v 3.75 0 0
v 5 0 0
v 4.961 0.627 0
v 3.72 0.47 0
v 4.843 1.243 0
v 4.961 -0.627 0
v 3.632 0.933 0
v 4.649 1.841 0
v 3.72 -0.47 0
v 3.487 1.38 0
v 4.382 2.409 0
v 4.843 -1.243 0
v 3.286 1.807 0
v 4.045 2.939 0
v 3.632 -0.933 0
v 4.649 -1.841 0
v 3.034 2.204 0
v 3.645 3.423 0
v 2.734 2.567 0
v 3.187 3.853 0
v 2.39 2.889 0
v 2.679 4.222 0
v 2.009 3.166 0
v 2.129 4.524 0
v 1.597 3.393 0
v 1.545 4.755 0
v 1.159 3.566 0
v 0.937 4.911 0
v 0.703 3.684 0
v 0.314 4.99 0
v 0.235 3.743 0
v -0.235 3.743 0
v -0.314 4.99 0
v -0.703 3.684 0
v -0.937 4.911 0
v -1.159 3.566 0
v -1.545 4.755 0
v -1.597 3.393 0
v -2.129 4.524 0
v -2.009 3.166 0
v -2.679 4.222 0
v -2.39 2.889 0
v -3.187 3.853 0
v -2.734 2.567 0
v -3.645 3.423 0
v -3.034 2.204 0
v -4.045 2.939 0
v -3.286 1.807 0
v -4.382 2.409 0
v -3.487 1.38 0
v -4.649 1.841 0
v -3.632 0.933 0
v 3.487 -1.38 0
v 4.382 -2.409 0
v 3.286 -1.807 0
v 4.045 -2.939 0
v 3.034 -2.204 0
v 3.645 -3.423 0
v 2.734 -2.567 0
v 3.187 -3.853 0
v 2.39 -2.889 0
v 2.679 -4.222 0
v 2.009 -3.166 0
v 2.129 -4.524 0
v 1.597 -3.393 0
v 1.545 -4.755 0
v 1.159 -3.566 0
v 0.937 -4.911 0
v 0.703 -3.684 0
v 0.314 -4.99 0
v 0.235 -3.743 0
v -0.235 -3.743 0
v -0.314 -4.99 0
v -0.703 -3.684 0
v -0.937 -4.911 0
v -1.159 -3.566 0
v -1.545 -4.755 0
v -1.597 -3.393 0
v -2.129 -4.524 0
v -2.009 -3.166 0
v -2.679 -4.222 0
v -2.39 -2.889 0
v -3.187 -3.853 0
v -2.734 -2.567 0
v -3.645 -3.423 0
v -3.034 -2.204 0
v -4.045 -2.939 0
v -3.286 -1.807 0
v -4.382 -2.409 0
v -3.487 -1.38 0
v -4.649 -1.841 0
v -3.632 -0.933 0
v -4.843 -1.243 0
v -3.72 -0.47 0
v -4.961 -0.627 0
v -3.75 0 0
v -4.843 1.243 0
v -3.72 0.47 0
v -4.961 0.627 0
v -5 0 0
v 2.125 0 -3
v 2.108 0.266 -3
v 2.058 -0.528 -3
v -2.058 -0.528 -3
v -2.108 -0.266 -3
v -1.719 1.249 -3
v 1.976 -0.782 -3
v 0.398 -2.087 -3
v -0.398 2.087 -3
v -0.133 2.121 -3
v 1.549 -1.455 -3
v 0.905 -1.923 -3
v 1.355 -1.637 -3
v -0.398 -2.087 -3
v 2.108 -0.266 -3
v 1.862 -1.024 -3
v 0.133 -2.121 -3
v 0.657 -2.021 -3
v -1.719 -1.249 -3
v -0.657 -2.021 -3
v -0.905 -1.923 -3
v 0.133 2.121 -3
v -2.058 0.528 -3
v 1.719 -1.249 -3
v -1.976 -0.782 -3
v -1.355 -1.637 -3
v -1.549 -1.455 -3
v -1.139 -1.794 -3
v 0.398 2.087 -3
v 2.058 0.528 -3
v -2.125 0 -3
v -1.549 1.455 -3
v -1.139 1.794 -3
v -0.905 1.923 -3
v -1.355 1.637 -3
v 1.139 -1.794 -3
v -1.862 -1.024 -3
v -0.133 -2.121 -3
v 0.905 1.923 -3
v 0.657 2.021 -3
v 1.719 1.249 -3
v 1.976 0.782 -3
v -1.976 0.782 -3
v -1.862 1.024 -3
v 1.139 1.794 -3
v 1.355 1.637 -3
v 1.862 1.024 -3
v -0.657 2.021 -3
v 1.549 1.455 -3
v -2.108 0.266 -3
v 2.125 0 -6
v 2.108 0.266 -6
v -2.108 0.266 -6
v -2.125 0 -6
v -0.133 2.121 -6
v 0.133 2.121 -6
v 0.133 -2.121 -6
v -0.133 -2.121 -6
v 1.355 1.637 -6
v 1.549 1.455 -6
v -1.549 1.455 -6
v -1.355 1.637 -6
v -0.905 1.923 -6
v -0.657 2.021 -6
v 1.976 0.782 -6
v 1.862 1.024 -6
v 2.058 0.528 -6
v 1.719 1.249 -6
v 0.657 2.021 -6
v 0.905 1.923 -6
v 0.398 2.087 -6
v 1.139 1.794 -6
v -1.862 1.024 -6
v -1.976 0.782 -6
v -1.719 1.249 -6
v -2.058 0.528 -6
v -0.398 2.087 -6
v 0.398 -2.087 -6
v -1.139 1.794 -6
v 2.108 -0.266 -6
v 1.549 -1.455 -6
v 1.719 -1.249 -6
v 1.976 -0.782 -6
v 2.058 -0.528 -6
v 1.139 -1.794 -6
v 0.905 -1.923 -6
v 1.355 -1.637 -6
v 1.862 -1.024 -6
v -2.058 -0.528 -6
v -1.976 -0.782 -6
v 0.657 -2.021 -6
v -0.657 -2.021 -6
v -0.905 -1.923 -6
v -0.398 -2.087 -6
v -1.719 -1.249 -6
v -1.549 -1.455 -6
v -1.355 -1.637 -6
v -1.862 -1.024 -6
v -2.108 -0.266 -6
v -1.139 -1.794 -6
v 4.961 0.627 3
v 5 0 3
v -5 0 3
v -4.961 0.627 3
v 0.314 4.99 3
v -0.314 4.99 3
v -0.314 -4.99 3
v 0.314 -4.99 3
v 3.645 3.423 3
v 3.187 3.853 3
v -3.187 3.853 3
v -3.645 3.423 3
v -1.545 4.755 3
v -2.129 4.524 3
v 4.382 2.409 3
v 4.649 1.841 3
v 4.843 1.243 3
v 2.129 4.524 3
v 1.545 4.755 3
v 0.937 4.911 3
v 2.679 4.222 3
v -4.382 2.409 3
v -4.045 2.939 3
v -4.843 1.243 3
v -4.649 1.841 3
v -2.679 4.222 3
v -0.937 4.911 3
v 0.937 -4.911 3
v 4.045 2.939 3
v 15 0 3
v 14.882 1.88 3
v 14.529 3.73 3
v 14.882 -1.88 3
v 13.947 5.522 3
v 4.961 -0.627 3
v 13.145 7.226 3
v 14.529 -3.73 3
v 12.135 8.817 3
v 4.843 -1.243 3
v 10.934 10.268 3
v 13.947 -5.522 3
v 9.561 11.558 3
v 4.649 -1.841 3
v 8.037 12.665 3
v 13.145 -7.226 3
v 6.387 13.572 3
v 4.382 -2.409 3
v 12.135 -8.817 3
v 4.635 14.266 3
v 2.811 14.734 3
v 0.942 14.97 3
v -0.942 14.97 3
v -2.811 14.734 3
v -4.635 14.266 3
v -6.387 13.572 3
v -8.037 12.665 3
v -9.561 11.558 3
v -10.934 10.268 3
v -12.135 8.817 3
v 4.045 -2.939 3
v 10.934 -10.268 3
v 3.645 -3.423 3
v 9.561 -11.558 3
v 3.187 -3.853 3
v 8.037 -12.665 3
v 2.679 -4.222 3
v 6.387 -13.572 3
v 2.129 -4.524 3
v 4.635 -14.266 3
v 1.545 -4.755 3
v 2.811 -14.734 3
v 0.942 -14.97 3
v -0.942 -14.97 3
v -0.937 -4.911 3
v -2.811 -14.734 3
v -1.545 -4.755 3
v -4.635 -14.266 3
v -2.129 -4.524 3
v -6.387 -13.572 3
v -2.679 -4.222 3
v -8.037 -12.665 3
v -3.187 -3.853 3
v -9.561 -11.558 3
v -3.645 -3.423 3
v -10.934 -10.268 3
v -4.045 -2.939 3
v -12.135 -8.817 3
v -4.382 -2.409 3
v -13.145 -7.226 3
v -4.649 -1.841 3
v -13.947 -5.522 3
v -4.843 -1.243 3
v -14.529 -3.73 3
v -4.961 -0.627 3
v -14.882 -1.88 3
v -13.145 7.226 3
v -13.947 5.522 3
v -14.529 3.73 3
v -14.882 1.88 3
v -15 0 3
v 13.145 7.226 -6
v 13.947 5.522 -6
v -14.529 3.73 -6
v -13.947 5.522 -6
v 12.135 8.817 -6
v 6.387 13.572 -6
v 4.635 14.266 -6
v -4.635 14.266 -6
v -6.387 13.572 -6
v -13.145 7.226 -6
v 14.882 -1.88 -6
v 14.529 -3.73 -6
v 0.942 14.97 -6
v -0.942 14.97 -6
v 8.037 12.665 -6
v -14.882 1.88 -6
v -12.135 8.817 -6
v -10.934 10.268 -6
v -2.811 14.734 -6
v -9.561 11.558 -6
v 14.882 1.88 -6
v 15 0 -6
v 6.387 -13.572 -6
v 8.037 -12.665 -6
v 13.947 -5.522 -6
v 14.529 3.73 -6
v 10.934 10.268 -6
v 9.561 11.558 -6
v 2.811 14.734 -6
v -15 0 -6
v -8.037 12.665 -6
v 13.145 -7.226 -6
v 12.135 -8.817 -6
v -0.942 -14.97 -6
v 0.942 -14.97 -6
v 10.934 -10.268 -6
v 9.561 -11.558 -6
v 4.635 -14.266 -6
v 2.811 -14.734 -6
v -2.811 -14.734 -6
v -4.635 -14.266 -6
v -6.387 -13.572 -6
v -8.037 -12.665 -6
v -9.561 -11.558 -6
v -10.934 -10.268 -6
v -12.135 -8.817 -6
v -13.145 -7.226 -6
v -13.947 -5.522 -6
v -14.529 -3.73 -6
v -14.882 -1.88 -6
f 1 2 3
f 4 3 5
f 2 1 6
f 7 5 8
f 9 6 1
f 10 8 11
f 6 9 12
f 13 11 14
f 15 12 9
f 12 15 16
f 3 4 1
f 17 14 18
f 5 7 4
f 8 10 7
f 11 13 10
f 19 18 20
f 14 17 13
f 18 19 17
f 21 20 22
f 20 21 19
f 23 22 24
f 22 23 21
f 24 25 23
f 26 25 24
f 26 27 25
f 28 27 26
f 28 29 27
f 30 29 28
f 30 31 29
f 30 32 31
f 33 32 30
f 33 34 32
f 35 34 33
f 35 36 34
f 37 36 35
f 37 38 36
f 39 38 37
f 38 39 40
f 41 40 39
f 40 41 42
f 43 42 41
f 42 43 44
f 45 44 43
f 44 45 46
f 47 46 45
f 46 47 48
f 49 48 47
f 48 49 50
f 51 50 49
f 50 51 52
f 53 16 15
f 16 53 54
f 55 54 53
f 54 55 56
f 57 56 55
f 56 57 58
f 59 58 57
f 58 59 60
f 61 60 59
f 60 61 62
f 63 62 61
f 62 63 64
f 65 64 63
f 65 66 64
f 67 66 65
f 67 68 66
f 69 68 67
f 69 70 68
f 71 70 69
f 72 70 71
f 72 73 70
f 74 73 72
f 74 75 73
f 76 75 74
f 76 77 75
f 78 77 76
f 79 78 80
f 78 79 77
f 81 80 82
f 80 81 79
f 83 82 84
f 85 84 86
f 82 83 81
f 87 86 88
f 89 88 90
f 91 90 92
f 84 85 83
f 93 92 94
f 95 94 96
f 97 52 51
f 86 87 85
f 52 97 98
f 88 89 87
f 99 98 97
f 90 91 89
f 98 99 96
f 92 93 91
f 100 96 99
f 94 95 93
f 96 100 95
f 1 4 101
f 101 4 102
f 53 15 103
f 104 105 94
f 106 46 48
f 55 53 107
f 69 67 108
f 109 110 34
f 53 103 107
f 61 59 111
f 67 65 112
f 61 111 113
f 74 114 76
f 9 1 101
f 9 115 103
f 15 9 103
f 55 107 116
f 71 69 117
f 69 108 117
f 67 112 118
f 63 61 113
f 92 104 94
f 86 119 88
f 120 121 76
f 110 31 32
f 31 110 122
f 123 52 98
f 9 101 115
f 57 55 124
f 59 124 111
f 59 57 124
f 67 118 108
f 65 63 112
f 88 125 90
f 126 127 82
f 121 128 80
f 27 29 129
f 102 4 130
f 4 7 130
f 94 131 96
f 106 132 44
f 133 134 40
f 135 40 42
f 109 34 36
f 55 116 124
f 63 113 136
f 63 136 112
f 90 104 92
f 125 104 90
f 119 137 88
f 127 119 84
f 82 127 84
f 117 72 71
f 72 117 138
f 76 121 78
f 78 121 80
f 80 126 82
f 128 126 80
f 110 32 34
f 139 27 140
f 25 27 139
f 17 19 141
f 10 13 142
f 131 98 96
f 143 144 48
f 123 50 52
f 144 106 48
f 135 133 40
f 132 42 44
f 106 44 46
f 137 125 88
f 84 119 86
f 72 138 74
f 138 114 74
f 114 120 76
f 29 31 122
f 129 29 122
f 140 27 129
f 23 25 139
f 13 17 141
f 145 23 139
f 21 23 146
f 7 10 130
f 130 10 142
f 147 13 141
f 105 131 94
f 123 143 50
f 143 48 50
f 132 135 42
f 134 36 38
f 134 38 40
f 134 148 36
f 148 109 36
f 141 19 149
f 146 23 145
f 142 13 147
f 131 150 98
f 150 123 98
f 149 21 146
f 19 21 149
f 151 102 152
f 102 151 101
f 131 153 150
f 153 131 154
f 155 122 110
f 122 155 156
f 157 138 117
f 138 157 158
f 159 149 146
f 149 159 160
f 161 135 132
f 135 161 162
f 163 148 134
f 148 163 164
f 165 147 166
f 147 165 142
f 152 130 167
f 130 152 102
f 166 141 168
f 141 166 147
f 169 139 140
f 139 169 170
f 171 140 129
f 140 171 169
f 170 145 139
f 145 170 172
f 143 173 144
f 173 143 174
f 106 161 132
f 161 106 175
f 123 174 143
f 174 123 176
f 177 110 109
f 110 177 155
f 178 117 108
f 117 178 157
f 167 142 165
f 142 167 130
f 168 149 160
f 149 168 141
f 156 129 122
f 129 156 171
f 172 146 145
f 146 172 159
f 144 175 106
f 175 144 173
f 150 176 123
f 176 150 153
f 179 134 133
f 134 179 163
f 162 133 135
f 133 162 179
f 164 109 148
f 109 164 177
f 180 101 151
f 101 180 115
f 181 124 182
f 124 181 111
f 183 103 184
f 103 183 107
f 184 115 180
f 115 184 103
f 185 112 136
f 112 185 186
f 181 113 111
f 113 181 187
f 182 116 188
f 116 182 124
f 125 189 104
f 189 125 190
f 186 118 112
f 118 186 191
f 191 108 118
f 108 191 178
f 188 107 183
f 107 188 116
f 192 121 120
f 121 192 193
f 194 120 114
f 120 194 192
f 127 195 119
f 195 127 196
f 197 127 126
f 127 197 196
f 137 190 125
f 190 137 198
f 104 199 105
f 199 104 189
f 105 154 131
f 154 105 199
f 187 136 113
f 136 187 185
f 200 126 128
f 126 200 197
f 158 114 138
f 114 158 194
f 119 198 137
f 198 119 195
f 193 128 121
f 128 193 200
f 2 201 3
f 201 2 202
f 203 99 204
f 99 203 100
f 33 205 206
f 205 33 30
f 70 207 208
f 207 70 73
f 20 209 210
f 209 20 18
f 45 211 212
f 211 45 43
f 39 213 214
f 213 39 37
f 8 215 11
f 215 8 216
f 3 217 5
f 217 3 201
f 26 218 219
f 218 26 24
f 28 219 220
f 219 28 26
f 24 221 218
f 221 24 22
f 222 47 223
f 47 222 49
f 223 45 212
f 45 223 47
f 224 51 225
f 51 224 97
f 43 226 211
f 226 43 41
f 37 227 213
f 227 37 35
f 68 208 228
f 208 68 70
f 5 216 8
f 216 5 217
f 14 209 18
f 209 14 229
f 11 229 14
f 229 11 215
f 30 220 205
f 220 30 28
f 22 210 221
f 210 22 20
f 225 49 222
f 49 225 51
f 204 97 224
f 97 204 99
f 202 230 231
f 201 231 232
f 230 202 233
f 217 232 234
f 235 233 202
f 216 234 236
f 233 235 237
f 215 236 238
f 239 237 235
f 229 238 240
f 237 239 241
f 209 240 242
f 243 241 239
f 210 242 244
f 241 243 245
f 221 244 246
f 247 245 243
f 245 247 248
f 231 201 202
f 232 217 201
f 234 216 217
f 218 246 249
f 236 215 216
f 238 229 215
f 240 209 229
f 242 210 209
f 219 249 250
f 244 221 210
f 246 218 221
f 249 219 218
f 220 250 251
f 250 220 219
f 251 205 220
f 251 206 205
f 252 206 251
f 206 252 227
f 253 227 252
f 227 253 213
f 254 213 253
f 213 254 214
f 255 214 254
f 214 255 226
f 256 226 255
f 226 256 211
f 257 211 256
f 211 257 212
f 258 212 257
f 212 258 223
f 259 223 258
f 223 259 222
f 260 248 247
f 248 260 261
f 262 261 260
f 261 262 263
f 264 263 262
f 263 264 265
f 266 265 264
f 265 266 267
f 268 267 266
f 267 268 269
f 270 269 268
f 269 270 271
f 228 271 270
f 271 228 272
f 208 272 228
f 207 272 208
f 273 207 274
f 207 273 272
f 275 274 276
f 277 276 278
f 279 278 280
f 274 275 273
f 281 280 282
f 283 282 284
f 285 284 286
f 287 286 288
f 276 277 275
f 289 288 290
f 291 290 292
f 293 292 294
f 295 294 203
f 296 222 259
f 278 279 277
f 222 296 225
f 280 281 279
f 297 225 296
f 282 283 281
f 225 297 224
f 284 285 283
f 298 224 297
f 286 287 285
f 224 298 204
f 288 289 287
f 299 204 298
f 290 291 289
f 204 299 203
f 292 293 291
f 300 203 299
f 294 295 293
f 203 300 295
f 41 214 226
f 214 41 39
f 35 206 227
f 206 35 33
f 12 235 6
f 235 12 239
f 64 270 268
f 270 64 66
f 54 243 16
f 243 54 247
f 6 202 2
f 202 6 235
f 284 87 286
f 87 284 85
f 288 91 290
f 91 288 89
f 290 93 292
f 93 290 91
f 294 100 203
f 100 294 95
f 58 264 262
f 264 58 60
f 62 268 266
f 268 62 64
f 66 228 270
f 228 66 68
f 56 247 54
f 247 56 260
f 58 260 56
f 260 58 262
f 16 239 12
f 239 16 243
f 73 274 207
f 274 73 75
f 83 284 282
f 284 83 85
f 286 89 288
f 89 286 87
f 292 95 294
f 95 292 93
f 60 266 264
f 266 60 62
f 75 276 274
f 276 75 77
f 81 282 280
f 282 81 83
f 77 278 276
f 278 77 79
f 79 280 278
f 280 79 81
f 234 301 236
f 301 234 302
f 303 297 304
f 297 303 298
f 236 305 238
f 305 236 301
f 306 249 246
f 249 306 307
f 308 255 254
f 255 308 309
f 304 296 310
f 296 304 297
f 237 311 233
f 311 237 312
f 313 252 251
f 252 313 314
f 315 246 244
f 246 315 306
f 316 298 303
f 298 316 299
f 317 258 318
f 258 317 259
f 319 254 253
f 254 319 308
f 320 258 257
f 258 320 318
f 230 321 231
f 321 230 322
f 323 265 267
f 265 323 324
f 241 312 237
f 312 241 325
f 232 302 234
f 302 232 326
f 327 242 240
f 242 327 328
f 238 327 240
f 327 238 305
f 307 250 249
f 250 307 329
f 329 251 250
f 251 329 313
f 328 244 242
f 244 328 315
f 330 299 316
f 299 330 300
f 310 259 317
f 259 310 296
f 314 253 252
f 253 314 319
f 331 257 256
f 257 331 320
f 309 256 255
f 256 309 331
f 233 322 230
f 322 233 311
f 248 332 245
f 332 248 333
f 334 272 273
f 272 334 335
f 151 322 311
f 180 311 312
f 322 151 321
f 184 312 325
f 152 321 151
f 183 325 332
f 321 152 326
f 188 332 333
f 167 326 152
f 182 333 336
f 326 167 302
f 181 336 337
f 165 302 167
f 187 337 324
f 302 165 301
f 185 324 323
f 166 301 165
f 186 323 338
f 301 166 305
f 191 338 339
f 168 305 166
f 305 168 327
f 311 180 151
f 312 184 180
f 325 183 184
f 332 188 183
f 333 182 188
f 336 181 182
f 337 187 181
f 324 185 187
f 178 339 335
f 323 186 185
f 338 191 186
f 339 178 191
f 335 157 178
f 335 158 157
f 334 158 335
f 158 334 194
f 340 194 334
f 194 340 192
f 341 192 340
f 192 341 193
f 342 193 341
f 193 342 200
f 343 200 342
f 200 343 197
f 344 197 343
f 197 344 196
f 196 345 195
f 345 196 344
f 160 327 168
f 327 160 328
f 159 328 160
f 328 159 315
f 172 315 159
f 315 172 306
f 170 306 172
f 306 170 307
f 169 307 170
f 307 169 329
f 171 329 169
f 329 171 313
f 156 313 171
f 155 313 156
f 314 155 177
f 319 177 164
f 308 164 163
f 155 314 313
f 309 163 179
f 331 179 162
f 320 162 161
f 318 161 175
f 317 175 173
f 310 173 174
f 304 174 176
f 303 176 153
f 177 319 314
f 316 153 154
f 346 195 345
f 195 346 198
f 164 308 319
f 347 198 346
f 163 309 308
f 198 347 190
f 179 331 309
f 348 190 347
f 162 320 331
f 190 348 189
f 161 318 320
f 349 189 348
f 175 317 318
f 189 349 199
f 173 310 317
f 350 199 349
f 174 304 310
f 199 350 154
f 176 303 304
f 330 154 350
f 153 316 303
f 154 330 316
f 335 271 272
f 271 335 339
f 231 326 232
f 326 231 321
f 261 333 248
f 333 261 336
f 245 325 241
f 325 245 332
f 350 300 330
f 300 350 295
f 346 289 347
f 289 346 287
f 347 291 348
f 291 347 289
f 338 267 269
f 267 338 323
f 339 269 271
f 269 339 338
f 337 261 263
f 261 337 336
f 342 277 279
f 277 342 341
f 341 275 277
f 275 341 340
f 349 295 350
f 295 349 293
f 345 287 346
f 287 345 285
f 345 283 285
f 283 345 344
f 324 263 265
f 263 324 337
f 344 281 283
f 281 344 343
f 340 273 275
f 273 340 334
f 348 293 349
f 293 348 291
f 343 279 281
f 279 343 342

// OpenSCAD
$fn = 50;

difference() {
	union() {
		translate(v = [0, 0, -6.0]) {
			cylinder(h = 9, r = 15.0);
		}
	}
	union() {
		translate(v = [0, 0, 0]) {
			rotate(a = [0, 0, 0]) {
				difference() {
					union() {
						translate(v = [0, 0, -9.0]) {
							cylinder(h = 9, r = 2.0);
						}
						translate(v = [0, 0, -3]) {
							cylinder(h = 3, r1 = 2.125, r2 = 3.75);
						}
						translate(v = [0, 0, -9.0]) {
							cylinder(h = 9, r = 2.125);
						}
						translate(v = [0, 0, -9.0]) {
							cylinder(h = 9, r = 2.0);
						}
					}
					union();
				}
			}
		}
		#cylinder(h = 3, r = 5.0);
	}
}
